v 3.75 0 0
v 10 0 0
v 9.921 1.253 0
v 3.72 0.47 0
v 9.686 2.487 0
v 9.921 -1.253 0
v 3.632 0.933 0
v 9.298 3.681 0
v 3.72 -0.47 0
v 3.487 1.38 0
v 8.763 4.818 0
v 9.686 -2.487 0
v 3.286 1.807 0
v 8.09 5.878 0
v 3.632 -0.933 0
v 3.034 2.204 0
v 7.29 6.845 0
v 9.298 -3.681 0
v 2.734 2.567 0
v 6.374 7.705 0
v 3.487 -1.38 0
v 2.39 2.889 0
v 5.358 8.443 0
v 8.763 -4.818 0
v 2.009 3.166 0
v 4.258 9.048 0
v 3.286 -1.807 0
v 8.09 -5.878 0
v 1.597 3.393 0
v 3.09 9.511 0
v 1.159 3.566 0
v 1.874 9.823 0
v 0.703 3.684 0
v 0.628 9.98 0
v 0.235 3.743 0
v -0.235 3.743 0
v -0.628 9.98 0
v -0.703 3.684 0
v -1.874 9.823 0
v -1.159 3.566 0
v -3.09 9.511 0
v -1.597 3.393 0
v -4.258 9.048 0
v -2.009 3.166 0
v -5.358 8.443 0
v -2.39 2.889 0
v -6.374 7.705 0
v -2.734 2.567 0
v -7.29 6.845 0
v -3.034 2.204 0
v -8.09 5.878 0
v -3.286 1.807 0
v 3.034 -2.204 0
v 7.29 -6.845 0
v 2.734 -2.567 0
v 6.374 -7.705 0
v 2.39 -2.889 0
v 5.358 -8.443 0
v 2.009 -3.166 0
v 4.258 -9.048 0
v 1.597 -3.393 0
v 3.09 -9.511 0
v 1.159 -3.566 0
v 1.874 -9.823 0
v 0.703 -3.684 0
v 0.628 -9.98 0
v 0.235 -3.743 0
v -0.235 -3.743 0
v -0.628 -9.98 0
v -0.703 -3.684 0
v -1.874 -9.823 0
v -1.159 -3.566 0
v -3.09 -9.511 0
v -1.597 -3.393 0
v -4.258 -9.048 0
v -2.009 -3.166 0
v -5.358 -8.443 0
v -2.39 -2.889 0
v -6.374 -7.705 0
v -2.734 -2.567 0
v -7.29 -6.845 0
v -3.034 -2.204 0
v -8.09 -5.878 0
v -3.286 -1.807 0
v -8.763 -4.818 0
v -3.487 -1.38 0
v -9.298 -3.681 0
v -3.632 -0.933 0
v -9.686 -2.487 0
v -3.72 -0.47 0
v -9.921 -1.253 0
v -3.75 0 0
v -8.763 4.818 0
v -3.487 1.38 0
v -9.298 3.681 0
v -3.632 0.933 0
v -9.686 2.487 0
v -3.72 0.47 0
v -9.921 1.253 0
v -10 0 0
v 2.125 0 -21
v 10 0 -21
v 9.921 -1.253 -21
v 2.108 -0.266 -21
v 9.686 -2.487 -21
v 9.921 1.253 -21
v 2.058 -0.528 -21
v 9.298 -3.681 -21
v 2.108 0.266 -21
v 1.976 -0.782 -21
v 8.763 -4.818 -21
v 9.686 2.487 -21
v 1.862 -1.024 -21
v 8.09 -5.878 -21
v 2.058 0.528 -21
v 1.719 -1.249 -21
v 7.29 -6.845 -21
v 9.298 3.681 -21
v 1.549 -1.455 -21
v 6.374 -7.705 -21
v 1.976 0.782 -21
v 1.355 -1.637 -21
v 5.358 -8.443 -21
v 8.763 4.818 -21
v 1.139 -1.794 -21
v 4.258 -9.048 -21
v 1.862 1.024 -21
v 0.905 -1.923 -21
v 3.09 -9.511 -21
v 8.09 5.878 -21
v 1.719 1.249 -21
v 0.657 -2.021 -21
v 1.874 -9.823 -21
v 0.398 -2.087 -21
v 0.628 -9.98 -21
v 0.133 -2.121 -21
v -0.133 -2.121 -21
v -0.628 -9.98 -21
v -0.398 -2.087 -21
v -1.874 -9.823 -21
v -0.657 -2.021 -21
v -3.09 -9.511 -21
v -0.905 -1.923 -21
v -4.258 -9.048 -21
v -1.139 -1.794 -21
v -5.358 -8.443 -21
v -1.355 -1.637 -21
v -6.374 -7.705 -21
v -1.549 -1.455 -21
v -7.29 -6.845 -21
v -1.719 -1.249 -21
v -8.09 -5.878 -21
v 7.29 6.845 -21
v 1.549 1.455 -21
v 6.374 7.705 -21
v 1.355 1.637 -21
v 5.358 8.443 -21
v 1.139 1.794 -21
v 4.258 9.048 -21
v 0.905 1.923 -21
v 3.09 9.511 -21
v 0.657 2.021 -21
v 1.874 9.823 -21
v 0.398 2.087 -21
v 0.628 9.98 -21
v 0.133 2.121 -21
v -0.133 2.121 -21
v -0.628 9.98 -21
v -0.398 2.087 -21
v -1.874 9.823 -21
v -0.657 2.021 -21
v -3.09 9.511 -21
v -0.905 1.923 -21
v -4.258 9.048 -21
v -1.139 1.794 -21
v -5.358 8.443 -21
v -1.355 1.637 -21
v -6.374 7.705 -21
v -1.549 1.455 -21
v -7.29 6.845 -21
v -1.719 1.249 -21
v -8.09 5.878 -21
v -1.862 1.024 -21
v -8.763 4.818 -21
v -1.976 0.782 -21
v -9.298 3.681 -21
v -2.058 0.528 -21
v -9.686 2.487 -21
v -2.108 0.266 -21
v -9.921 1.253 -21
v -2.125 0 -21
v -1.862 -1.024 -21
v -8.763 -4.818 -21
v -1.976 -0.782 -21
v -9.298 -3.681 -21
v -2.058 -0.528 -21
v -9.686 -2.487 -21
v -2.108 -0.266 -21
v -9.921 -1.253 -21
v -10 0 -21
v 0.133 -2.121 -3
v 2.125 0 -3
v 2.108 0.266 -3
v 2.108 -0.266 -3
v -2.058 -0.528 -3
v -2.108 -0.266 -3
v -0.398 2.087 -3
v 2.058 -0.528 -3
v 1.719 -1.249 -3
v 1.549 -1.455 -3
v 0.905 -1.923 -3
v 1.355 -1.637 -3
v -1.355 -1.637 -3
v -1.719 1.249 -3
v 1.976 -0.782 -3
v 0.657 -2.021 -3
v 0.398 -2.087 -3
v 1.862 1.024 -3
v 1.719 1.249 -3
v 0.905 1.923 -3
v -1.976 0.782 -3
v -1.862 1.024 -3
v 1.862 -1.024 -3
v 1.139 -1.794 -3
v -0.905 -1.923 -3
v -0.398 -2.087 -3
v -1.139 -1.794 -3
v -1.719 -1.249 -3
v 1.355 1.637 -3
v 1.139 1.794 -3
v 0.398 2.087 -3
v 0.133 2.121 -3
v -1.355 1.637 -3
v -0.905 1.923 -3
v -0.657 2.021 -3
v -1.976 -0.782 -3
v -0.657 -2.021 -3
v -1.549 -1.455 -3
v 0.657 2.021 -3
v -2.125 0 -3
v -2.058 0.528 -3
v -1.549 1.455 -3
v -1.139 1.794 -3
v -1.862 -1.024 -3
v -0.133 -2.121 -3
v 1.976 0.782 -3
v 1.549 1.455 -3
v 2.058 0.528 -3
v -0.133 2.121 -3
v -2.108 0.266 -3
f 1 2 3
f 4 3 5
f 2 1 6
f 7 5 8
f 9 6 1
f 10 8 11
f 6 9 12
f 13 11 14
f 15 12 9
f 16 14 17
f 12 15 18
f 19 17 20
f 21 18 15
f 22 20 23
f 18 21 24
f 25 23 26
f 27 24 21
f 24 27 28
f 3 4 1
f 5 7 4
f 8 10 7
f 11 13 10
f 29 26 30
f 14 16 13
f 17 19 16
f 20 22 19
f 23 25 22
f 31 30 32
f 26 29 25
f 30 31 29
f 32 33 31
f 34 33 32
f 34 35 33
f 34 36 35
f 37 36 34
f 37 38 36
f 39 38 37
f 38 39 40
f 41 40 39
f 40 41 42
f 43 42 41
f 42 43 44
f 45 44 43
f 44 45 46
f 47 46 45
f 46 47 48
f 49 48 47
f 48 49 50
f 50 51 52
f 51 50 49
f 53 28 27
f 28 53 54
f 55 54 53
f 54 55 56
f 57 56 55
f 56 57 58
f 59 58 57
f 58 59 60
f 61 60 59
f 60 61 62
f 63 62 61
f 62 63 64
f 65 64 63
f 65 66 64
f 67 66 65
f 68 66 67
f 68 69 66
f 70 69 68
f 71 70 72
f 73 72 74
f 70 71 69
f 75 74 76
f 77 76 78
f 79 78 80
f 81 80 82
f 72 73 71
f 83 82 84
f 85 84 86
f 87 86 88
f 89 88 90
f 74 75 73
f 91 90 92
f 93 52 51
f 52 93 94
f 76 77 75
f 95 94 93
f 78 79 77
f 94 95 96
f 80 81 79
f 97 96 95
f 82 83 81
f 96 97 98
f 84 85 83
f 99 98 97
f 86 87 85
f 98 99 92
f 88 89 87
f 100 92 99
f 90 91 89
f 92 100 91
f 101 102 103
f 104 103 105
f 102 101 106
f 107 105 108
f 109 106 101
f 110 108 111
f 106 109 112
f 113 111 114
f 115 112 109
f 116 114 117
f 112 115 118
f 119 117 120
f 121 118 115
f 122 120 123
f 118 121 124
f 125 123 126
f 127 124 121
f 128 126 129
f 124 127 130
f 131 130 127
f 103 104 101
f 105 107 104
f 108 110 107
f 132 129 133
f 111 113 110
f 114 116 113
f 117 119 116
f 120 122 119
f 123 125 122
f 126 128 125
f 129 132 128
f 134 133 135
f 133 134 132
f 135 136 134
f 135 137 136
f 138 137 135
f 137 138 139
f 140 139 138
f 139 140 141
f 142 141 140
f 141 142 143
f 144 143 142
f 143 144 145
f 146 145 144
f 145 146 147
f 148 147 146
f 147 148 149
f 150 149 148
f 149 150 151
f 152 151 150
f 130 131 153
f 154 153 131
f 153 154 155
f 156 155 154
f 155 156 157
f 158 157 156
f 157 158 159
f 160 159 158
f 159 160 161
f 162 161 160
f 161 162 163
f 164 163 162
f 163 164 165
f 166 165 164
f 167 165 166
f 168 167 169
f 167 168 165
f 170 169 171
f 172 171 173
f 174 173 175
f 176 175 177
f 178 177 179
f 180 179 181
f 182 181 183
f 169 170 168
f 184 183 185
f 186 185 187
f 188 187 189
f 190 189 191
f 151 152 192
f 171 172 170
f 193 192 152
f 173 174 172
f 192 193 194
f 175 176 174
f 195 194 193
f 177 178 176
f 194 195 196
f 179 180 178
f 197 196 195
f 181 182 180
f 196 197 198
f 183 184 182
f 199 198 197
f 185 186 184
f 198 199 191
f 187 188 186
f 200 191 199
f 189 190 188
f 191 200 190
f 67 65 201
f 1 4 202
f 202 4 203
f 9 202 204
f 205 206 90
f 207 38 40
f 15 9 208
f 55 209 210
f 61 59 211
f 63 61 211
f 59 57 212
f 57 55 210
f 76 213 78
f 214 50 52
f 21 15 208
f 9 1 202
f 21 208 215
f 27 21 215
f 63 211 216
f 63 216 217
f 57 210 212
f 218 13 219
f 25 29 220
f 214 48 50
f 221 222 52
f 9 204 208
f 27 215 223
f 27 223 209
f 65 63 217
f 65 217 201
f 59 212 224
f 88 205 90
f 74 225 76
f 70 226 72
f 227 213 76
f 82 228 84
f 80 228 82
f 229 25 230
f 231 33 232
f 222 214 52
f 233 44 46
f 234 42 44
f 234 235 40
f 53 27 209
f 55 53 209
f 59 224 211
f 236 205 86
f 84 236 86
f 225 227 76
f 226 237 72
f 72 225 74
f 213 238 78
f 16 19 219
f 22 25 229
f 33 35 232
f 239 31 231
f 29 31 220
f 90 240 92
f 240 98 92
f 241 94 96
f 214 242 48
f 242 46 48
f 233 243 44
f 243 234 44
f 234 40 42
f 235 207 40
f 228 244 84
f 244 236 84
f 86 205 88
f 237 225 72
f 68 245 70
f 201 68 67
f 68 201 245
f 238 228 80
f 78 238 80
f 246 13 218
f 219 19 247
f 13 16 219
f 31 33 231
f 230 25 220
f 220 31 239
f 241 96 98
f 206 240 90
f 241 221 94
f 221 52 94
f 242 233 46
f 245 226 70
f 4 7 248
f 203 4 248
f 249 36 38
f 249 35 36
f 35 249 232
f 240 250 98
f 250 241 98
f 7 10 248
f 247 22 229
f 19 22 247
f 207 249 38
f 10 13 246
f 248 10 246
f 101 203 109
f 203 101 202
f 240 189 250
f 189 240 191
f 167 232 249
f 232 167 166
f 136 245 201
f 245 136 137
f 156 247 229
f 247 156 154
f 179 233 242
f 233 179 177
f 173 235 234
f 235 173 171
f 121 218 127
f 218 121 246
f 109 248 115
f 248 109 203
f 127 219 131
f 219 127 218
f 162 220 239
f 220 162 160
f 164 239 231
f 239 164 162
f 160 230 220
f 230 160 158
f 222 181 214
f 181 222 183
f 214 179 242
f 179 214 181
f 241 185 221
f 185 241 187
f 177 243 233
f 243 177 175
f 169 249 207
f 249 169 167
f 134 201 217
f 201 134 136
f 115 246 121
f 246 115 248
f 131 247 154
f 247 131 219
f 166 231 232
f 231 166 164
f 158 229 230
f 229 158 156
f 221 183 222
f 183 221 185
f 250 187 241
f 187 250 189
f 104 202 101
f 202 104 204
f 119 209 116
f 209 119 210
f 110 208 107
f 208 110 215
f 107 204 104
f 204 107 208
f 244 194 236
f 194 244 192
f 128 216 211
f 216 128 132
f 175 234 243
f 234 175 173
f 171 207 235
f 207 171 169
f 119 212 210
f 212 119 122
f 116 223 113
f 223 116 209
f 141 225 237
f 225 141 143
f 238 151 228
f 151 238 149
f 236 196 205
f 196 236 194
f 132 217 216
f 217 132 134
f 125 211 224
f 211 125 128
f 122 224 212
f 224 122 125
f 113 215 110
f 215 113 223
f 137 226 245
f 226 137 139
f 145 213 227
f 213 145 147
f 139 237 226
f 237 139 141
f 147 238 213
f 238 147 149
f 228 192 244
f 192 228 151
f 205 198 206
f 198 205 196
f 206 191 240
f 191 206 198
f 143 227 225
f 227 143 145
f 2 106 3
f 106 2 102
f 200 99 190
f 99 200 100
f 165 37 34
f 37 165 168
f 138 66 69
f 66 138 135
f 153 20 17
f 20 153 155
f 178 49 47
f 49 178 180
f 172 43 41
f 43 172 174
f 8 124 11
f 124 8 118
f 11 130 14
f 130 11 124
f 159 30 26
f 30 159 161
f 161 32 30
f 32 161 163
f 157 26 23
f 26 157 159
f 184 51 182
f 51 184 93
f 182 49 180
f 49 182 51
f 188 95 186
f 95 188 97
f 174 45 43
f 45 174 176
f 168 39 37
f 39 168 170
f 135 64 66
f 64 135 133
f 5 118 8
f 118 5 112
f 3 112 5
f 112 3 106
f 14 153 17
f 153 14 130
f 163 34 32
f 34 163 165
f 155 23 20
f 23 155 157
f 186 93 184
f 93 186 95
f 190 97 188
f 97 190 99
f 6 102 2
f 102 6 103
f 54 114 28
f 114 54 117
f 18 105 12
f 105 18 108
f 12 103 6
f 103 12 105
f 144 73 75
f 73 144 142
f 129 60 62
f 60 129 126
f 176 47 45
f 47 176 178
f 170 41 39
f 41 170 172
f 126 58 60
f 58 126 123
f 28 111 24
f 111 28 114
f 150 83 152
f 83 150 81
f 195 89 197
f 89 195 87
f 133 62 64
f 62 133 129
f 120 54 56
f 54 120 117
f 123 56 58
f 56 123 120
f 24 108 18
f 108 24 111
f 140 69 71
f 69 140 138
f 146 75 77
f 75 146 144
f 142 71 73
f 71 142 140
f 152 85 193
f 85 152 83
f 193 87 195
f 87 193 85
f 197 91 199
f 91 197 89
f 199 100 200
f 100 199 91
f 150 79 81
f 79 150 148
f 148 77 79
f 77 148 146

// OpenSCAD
$fn = 50;


difference() {
	union() {
		translate(v = [0, 0, -21.0000000000]) {
			cylinder(h = 21, r = 10.0000000000);
		}
		cylinder(h = 0, r = 16.0000000000);
	}
	union() {
		translate(v = [0, 0, 0]) {
			rotate(a = [0, 0, 0]) {
				difference() {
					union() {
						#translate(v = [0, 0, -21.0000000000]) {
							cylinder(h = 21, r = 2.0000000000);
						}
						#translate(v = [0, 0, -3]) {
							cylinder(h = 3, r = 10.0000000000, r1 = 2.1250000000, r2 = 3.7500000000);
						}
						#translate(v = [0, 0, -21.0000000000]) {
							cylinder(h = 21, r = 2.1250000000);
						}
						#translate(v = [0, 0, -21.0000000000]) {
							cylinder(h = 21, r = 2.0000000000);
						}
					}
					union();
				}
			}
		}
	}
}
